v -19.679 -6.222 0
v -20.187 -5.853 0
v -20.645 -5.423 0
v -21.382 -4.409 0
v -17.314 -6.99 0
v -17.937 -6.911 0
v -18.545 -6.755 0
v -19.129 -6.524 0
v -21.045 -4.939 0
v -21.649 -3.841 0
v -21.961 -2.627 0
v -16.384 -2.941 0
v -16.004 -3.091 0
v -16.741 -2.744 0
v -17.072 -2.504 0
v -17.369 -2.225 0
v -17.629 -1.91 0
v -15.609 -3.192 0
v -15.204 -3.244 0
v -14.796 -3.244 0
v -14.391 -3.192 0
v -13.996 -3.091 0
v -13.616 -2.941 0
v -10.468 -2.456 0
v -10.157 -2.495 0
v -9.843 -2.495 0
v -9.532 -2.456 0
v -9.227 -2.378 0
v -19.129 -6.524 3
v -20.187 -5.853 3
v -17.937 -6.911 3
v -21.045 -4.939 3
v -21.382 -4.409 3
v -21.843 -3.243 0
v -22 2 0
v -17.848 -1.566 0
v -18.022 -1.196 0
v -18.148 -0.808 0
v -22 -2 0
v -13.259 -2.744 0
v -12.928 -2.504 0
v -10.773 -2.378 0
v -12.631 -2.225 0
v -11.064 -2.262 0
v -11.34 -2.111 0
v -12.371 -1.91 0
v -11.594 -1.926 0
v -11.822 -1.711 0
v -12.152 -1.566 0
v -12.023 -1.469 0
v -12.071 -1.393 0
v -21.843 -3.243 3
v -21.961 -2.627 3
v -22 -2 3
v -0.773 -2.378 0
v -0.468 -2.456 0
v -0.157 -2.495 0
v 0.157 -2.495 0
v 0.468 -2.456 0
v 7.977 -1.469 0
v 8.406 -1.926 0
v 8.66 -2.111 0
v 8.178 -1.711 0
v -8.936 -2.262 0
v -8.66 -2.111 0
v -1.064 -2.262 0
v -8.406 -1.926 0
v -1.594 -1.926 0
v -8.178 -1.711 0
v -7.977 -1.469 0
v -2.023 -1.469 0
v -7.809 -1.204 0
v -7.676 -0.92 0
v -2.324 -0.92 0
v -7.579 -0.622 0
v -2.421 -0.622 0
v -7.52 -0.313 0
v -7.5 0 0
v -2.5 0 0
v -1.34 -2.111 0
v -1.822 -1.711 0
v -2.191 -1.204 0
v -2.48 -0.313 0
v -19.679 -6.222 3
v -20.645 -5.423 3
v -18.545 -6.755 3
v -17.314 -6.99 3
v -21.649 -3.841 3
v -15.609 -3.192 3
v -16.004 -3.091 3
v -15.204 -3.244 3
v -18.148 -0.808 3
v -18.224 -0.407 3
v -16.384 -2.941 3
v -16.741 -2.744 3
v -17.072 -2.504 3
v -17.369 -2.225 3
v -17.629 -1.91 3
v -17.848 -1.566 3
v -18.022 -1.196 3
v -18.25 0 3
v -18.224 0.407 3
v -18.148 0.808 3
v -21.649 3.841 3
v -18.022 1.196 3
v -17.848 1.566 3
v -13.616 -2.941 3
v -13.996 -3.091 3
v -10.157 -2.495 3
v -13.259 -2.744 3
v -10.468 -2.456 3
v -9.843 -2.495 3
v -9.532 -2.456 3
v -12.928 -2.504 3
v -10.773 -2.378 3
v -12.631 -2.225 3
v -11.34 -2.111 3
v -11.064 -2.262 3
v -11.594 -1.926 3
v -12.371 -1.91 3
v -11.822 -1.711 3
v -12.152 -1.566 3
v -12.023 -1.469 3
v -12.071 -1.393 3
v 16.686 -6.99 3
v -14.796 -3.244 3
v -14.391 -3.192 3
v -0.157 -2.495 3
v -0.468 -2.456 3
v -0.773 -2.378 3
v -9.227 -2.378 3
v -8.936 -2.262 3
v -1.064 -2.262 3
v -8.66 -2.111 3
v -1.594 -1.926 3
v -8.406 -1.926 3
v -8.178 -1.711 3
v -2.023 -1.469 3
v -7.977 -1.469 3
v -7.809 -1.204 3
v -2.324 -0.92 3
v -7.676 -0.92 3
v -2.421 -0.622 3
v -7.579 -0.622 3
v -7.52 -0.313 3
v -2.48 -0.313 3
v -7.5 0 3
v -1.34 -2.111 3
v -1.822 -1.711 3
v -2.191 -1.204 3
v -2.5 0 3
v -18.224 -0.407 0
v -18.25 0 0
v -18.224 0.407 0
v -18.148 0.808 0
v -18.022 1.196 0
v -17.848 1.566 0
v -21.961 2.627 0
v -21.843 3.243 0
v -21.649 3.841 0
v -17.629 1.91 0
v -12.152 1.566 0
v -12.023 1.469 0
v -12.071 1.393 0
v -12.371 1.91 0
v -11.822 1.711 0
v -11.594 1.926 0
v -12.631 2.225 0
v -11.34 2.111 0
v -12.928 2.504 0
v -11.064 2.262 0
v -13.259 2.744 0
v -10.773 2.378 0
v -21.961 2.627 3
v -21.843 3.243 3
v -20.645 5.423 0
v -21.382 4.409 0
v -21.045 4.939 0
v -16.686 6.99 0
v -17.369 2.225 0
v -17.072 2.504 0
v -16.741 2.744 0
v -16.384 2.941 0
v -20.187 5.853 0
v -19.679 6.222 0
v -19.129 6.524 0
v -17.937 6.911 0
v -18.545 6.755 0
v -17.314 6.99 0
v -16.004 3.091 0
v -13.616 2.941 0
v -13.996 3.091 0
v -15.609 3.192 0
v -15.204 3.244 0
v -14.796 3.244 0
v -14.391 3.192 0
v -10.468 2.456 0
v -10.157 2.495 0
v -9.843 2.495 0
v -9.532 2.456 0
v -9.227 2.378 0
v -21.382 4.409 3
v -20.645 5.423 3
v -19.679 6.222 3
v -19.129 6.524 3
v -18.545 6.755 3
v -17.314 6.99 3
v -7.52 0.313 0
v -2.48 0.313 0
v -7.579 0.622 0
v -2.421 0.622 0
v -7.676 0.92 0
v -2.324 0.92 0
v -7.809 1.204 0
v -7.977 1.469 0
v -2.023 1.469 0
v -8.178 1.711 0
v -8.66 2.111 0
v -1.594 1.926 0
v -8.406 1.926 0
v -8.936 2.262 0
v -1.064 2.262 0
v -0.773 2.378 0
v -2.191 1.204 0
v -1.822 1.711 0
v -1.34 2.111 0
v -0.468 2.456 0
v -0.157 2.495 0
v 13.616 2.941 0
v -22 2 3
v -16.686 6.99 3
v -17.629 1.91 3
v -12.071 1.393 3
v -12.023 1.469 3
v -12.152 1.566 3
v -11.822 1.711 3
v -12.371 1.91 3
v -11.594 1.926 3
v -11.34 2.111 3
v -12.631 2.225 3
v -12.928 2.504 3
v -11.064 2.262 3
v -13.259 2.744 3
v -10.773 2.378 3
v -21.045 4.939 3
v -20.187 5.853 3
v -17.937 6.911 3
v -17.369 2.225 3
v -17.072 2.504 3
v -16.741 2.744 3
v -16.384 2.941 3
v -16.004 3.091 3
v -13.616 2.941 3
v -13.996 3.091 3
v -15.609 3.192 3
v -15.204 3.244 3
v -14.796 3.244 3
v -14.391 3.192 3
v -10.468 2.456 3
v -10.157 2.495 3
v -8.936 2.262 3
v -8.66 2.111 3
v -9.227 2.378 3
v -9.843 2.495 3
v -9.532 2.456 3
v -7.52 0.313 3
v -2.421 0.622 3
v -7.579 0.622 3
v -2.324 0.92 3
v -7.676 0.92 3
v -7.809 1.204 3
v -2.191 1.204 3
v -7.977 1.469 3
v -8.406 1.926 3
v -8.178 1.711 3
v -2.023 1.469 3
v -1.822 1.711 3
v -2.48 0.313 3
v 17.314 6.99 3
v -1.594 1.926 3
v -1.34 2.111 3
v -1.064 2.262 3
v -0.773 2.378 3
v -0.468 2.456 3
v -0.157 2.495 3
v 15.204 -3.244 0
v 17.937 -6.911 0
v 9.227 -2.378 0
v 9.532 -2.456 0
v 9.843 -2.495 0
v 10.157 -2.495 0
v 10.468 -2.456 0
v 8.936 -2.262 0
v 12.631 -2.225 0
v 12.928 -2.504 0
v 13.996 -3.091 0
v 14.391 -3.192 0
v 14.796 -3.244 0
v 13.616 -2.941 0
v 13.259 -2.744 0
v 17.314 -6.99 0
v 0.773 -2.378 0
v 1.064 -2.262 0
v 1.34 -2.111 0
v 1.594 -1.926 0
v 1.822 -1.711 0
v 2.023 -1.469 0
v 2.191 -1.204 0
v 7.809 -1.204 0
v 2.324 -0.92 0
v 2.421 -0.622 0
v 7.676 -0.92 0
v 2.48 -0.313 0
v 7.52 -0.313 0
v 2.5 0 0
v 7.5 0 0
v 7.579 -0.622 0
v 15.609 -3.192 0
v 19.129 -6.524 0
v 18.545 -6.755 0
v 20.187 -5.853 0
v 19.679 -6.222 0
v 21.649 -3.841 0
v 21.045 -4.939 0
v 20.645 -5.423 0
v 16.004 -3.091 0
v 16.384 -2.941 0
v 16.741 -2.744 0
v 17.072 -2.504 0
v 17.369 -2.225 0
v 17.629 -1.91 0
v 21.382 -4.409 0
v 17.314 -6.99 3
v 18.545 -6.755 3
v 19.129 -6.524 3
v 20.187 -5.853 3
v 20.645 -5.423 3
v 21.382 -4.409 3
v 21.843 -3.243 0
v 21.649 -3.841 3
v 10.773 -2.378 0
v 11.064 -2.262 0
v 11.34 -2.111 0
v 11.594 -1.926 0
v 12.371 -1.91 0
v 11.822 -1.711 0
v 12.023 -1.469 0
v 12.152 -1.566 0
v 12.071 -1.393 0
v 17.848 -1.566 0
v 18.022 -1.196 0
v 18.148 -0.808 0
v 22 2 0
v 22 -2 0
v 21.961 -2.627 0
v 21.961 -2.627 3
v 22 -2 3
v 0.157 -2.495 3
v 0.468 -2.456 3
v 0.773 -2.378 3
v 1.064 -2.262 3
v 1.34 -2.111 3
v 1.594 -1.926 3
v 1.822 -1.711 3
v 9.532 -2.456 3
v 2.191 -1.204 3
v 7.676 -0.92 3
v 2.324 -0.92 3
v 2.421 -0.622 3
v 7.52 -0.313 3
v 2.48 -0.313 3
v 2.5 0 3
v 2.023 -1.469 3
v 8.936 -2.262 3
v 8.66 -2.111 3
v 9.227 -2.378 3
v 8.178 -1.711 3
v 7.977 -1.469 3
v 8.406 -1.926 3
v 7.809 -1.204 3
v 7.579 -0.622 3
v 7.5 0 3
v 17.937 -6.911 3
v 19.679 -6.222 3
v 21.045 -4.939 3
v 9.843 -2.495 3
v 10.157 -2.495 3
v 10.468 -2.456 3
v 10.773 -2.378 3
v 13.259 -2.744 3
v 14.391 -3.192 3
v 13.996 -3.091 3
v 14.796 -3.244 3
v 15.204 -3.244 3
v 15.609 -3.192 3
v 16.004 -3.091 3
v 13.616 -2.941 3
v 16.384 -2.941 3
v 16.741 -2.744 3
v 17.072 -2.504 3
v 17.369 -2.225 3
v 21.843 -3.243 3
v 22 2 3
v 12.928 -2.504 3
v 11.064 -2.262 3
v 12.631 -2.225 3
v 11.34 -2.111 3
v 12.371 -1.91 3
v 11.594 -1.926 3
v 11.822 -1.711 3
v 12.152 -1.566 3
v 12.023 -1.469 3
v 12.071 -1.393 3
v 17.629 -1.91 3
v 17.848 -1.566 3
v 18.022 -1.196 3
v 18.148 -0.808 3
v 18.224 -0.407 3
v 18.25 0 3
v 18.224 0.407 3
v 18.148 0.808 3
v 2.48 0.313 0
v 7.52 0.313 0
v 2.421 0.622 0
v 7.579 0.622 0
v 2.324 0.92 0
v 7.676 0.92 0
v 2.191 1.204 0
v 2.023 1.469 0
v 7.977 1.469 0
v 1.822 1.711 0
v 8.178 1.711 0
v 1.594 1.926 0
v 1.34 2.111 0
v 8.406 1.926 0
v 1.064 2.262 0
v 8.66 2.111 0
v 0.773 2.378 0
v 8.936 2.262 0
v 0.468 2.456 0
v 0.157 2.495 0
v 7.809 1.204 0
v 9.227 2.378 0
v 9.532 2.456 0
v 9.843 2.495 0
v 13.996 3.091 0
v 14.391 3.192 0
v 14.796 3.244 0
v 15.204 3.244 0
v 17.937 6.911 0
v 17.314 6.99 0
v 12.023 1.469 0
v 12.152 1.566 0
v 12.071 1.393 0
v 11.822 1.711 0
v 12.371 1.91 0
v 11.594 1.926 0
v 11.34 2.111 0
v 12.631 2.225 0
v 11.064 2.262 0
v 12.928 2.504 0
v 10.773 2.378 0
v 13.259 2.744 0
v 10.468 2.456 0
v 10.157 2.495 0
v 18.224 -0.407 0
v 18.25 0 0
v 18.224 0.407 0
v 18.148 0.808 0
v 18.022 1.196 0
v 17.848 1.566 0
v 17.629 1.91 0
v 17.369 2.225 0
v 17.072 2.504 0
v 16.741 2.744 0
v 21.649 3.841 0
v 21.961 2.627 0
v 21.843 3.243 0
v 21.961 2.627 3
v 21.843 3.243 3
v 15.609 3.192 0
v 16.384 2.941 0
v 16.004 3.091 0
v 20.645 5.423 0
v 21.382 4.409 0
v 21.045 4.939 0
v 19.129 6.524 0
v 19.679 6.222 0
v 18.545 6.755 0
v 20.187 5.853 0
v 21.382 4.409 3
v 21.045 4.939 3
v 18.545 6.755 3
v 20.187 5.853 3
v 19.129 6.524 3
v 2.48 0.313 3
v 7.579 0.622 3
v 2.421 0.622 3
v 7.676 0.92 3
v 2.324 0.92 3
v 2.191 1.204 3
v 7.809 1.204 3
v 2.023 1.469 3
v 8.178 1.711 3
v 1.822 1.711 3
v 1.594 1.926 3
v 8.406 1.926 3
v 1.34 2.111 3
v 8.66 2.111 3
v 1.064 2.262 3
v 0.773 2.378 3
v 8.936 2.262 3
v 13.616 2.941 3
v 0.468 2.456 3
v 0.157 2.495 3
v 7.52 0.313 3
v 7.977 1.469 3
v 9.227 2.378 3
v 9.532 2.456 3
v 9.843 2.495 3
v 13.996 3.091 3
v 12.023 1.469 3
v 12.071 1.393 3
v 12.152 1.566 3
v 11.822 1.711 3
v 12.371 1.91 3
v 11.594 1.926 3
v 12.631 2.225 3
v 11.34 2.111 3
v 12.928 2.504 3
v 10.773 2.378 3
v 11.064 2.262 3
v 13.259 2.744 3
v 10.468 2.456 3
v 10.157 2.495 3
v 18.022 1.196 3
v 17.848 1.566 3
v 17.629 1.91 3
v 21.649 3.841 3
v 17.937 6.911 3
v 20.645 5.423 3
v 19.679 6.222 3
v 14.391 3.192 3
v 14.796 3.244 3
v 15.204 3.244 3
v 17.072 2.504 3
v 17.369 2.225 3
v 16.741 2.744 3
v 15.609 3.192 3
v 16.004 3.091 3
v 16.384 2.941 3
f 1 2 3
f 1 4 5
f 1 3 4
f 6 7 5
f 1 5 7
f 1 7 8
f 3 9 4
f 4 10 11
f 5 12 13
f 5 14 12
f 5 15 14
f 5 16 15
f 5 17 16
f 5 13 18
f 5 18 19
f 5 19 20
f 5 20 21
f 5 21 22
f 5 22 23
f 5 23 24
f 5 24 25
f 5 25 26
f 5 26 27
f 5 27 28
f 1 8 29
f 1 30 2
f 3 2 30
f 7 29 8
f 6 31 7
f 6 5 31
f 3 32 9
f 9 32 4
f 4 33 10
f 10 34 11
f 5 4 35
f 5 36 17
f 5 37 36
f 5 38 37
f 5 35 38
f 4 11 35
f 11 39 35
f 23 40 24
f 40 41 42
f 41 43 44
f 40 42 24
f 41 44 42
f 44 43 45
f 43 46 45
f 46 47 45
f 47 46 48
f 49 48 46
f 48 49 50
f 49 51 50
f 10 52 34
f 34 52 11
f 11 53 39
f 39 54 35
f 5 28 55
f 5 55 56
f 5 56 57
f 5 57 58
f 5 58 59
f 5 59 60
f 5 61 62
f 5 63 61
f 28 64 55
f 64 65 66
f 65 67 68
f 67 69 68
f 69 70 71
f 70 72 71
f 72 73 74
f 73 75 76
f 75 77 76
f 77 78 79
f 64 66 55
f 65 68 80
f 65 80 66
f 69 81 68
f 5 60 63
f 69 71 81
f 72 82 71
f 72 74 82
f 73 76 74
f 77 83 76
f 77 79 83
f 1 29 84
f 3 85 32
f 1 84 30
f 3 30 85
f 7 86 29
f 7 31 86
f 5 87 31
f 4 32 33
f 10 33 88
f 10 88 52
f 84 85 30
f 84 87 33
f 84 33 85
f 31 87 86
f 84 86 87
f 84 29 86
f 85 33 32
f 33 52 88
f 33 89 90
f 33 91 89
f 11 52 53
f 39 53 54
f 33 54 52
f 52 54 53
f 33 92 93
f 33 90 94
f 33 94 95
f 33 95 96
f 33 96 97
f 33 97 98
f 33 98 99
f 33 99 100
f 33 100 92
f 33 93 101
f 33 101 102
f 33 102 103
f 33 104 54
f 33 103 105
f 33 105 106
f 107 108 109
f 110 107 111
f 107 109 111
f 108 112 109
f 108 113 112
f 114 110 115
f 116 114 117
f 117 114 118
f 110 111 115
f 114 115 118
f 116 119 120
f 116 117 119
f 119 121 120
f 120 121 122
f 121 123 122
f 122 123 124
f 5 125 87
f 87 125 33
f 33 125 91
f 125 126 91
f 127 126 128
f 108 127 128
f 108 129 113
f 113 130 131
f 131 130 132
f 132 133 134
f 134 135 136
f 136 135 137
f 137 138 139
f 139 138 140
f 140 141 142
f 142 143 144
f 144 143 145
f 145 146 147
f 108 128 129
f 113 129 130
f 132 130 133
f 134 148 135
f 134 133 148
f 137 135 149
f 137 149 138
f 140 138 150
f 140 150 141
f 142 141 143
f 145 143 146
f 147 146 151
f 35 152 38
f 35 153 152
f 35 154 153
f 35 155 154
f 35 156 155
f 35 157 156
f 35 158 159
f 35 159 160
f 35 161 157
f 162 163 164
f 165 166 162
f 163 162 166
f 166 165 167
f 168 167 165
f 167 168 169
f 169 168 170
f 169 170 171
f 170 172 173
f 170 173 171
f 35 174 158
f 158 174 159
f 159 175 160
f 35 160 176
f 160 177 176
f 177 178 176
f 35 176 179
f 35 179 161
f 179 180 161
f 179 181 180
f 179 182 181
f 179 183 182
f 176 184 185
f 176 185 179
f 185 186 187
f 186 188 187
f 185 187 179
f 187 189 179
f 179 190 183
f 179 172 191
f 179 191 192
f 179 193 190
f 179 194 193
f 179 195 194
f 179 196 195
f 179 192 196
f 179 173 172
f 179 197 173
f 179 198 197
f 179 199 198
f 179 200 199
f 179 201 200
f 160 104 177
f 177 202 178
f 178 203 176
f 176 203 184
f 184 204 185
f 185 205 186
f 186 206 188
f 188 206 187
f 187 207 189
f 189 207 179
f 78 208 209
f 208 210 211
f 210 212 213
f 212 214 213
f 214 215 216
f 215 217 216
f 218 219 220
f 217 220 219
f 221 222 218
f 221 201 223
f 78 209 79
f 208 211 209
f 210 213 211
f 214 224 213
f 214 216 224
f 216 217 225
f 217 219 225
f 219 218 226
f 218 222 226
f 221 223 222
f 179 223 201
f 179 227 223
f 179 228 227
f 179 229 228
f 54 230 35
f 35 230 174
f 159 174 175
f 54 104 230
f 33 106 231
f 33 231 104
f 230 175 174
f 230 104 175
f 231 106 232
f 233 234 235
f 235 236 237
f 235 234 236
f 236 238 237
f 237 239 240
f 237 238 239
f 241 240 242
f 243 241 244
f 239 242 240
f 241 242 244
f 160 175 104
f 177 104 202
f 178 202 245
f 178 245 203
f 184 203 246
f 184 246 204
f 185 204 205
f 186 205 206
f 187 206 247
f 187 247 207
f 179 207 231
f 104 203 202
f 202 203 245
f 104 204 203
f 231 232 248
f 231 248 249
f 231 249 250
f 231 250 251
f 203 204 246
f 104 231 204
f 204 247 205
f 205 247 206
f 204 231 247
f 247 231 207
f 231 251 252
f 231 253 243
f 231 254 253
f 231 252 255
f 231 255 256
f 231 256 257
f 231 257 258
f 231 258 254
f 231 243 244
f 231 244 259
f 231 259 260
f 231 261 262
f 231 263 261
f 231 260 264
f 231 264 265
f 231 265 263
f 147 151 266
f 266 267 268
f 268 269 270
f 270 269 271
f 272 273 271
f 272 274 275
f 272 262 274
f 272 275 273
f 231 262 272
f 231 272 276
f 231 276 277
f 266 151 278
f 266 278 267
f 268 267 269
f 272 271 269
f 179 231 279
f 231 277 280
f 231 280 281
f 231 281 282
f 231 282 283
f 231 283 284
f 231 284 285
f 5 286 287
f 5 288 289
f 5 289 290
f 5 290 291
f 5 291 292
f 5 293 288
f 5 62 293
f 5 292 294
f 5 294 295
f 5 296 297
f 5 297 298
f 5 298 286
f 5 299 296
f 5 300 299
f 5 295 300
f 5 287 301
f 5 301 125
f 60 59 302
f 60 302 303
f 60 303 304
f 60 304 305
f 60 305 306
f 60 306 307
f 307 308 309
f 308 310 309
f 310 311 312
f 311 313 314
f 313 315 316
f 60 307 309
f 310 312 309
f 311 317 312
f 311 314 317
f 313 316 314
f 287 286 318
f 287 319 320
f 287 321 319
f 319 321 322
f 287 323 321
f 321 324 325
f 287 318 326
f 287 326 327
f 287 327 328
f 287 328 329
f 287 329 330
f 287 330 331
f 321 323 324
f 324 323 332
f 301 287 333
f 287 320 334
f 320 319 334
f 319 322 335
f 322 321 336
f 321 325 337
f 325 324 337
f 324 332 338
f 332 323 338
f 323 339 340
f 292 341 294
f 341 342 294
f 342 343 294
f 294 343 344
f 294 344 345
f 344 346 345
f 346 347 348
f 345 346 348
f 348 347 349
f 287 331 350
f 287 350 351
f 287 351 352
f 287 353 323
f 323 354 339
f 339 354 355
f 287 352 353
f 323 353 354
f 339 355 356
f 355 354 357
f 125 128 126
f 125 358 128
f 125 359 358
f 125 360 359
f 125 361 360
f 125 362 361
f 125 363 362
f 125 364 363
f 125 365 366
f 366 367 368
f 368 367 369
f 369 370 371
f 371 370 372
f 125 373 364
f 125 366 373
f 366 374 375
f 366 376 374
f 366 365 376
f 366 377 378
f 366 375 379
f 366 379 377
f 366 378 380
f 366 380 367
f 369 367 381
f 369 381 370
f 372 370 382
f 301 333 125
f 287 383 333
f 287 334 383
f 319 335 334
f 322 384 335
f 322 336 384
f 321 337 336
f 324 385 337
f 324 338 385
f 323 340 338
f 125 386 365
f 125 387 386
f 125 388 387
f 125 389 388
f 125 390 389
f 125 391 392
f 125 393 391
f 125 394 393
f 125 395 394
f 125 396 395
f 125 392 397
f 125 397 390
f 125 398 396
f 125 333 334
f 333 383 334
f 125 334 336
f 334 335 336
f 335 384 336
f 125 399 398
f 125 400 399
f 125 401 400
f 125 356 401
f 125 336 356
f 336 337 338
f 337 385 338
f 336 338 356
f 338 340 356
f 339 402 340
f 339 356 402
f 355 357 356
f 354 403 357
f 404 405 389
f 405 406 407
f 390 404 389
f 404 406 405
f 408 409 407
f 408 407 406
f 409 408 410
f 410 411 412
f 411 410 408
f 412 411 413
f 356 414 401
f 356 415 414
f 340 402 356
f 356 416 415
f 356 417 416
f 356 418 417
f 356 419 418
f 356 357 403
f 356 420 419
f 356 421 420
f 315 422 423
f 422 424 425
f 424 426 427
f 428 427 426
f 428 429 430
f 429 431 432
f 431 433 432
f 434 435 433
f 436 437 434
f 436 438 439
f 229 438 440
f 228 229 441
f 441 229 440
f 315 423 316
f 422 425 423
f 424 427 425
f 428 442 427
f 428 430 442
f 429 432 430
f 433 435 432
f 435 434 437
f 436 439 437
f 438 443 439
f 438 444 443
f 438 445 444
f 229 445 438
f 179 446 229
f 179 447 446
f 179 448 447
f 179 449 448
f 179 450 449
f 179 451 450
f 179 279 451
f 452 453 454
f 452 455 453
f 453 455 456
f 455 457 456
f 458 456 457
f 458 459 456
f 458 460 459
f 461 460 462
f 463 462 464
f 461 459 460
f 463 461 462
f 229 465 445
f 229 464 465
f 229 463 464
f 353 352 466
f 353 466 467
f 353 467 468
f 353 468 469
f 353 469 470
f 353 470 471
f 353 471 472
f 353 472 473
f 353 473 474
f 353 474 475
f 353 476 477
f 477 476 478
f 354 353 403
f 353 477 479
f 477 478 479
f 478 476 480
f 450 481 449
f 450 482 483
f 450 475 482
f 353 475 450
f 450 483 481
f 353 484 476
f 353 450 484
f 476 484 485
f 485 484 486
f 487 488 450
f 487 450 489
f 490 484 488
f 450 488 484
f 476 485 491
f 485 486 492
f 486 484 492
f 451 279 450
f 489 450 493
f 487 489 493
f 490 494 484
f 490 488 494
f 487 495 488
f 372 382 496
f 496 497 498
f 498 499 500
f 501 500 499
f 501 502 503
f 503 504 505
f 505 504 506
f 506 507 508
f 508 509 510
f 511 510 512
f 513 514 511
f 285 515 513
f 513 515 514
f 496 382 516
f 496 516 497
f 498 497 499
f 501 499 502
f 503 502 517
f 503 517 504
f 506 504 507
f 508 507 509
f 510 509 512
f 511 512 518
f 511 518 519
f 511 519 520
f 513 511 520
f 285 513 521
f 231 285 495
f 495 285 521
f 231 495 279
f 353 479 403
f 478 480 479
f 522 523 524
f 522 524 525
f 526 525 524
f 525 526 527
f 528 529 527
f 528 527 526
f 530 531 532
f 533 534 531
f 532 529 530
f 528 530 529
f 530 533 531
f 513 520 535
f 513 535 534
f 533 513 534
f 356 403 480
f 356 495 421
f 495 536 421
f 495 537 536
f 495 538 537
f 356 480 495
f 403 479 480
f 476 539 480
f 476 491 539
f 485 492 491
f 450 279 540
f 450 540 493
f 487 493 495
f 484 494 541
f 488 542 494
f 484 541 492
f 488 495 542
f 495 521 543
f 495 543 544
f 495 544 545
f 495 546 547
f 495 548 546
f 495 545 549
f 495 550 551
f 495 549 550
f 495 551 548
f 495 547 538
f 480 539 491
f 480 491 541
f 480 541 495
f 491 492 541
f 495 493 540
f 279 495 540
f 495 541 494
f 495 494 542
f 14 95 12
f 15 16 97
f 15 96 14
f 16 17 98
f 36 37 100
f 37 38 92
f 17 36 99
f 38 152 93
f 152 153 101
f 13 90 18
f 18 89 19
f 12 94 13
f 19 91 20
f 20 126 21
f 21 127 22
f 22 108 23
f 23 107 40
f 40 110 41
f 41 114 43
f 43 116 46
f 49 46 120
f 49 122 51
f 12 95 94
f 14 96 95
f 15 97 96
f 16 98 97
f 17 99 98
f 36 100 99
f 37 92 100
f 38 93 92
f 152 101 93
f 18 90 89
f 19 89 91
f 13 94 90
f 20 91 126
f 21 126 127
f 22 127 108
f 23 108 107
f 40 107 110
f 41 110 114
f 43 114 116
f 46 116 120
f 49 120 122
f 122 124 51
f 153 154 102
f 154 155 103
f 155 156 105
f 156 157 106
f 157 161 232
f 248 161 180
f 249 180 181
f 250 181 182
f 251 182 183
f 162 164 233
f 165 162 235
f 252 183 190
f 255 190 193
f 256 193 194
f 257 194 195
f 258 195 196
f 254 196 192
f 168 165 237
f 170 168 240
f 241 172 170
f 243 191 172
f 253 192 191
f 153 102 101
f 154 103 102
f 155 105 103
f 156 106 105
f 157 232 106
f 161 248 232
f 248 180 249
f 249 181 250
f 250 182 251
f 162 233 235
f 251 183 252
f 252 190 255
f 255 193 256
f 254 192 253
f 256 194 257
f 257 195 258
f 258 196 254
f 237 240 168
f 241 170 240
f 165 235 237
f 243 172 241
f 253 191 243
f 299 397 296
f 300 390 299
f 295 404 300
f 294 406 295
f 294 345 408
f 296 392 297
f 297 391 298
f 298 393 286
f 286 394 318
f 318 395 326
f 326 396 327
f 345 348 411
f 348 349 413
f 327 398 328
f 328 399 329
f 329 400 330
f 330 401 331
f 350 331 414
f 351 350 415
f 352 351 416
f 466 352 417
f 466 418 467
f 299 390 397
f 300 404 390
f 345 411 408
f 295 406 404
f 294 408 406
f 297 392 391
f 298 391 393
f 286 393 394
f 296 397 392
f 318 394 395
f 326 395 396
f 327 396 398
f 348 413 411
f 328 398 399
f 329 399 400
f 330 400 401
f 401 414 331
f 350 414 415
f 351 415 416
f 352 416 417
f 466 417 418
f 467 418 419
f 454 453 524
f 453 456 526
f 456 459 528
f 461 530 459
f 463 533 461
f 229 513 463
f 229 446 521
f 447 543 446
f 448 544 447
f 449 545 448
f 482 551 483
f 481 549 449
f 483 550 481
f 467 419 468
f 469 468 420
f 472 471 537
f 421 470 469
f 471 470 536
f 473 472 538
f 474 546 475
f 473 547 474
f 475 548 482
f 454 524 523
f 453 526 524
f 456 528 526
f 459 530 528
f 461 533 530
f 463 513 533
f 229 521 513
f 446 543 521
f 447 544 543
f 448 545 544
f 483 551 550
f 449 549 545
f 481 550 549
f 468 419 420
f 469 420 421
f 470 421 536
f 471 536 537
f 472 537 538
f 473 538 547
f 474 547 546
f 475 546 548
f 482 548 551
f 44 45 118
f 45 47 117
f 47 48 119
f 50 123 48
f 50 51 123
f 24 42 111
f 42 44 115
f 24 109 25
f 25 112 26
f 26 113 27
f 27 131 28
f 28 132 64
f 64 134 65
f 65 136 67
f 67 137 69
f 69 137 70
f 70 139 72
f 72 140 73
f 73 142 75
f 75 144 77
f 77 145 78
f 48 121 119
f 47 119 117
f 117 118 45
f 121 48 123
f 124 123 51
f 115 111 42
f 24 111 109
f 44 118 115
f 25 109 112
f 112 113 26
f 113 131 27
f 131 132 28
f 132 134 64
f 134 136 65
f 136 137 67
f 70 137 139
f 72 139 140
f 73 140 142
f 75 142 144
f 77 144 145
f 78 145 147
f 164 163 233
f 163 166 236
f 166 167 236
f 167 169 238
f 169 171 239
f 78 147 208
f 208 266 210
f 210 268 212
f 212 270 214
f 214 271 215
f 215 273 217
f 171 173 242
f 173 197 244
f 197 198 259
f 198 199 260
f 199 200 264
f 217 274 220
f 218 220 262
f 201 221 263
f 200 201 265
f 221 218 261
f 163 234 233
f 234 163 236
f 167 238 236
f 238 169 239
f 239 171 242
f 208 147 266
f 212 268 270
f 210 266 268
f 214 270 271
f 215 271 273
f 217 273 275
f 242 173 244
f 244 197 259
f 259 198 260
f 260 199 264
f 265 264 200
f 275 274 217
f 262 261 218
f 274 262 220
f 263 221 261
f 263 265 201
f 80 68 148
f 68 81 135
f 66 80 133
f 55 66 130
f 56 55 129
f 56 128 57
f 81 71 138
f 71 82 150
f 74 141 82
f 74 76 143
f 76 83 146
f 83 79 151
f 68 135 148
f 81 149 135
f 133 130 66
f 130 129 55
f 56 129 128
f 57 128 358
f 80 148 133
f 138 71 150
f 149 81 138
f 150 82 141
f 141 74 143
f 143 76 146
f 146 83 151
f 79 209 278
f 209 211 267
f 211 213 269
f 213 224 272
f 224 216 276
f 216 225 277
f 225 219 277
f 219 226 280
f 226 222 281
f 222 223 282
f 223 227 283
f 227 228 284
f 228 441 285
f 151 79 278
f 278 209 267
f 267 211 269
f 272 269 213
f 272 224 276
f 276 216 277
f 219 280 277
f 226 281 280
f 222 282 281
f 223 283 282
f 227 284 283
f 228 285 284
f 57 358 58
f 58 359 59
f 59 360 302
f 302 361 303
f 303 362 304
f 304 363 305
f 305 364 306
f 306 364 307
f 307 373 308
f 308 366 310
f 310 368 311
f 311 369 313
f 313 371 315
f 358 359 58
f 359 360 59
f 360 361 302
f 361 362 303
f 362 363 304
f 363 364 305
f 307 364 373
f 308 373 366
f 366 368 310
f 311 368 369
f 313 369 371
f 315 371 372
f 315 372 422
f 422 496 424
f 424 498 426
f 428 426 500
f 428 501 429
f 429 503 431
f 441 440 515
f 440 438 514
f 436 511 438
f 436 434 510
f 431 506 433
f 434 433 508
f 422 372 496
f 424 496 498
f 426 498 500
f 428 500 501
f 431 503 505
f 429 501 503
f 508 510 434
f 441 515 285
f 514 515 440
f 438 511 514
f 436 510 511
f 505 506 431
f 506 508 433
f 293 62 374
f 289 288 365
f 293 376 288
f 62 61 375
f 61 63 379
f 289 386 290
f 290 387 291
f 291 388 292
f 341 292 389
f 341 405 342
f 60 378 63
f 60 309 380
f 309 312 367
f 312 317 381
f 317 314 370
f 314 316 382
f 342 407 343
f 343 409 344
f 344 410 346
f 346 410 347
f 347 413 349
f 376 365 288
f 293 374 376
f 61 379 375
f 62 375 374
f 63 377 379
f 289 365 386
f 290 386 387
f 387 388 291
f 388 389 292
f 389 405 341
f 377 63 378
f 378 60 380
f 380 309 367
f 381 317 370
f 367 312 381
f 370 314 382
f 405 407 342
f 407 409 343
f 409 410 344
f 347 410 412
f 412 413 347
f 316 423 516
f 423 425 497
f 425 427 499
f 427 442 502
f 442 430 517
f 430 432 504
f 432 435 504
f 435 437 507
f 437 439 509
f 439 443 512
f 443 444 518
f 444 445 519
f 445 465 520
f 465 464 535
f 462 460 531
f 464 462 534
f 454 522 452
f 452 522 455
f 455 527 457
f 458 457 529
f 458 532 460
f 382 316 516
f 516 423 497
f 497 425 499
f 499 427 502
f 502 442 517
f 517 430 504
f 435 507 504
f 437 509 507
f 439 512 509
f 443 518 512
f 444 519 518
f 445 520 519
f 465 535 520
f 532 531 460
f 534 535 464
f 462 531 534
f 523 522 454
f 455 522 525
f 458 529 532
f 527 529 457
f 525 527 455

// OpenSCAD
$fn = 50;

difference() {
	union() {
		hull() {
			translate(v = [-17.0, 2.0, 0]) {
				cylinder(h = 3, r = 5);
			}
			translate(v = [17.0, 2.0, 0]) {
				cylinder(h = 3, r = 5);
			}
			translate(v = [-17.0, -2.0, 0]) {
				cylinder(h = 3, r = 5);
			}
			translate(v = [17.0, -2.0, 0]) {
				cylinder(h = 3, r = 5);
			}
		}
	}
	union() {
		translate(v = [-15.0, 0.0, -100.0]) {
			cylinder(h = 200, r = 3.25);
		}
		translate(v = [15.0, 0.0, -100.0]) {
			cylinder(h = 200, r = 3.25);
		}
		translate(v = [-15.0, 0.0, -100.0]) {
			cylinder(h = 200, r = 1.8);
		}
		translate(v = [15.0, 0.0, -100.0]) {
			cylinder(h = 200, r = 1.8);
		}
		translate(v = [-10.0, 0, 0.0]) {
			cylinder(h = 3, r = 2.5);
		}
		cylinder(h = 3, r = 2.5);
		translate(v = [10.0, 0, 0.0]) {
			cylinder(h = 3, r = 2.5);
		}
	}
}
